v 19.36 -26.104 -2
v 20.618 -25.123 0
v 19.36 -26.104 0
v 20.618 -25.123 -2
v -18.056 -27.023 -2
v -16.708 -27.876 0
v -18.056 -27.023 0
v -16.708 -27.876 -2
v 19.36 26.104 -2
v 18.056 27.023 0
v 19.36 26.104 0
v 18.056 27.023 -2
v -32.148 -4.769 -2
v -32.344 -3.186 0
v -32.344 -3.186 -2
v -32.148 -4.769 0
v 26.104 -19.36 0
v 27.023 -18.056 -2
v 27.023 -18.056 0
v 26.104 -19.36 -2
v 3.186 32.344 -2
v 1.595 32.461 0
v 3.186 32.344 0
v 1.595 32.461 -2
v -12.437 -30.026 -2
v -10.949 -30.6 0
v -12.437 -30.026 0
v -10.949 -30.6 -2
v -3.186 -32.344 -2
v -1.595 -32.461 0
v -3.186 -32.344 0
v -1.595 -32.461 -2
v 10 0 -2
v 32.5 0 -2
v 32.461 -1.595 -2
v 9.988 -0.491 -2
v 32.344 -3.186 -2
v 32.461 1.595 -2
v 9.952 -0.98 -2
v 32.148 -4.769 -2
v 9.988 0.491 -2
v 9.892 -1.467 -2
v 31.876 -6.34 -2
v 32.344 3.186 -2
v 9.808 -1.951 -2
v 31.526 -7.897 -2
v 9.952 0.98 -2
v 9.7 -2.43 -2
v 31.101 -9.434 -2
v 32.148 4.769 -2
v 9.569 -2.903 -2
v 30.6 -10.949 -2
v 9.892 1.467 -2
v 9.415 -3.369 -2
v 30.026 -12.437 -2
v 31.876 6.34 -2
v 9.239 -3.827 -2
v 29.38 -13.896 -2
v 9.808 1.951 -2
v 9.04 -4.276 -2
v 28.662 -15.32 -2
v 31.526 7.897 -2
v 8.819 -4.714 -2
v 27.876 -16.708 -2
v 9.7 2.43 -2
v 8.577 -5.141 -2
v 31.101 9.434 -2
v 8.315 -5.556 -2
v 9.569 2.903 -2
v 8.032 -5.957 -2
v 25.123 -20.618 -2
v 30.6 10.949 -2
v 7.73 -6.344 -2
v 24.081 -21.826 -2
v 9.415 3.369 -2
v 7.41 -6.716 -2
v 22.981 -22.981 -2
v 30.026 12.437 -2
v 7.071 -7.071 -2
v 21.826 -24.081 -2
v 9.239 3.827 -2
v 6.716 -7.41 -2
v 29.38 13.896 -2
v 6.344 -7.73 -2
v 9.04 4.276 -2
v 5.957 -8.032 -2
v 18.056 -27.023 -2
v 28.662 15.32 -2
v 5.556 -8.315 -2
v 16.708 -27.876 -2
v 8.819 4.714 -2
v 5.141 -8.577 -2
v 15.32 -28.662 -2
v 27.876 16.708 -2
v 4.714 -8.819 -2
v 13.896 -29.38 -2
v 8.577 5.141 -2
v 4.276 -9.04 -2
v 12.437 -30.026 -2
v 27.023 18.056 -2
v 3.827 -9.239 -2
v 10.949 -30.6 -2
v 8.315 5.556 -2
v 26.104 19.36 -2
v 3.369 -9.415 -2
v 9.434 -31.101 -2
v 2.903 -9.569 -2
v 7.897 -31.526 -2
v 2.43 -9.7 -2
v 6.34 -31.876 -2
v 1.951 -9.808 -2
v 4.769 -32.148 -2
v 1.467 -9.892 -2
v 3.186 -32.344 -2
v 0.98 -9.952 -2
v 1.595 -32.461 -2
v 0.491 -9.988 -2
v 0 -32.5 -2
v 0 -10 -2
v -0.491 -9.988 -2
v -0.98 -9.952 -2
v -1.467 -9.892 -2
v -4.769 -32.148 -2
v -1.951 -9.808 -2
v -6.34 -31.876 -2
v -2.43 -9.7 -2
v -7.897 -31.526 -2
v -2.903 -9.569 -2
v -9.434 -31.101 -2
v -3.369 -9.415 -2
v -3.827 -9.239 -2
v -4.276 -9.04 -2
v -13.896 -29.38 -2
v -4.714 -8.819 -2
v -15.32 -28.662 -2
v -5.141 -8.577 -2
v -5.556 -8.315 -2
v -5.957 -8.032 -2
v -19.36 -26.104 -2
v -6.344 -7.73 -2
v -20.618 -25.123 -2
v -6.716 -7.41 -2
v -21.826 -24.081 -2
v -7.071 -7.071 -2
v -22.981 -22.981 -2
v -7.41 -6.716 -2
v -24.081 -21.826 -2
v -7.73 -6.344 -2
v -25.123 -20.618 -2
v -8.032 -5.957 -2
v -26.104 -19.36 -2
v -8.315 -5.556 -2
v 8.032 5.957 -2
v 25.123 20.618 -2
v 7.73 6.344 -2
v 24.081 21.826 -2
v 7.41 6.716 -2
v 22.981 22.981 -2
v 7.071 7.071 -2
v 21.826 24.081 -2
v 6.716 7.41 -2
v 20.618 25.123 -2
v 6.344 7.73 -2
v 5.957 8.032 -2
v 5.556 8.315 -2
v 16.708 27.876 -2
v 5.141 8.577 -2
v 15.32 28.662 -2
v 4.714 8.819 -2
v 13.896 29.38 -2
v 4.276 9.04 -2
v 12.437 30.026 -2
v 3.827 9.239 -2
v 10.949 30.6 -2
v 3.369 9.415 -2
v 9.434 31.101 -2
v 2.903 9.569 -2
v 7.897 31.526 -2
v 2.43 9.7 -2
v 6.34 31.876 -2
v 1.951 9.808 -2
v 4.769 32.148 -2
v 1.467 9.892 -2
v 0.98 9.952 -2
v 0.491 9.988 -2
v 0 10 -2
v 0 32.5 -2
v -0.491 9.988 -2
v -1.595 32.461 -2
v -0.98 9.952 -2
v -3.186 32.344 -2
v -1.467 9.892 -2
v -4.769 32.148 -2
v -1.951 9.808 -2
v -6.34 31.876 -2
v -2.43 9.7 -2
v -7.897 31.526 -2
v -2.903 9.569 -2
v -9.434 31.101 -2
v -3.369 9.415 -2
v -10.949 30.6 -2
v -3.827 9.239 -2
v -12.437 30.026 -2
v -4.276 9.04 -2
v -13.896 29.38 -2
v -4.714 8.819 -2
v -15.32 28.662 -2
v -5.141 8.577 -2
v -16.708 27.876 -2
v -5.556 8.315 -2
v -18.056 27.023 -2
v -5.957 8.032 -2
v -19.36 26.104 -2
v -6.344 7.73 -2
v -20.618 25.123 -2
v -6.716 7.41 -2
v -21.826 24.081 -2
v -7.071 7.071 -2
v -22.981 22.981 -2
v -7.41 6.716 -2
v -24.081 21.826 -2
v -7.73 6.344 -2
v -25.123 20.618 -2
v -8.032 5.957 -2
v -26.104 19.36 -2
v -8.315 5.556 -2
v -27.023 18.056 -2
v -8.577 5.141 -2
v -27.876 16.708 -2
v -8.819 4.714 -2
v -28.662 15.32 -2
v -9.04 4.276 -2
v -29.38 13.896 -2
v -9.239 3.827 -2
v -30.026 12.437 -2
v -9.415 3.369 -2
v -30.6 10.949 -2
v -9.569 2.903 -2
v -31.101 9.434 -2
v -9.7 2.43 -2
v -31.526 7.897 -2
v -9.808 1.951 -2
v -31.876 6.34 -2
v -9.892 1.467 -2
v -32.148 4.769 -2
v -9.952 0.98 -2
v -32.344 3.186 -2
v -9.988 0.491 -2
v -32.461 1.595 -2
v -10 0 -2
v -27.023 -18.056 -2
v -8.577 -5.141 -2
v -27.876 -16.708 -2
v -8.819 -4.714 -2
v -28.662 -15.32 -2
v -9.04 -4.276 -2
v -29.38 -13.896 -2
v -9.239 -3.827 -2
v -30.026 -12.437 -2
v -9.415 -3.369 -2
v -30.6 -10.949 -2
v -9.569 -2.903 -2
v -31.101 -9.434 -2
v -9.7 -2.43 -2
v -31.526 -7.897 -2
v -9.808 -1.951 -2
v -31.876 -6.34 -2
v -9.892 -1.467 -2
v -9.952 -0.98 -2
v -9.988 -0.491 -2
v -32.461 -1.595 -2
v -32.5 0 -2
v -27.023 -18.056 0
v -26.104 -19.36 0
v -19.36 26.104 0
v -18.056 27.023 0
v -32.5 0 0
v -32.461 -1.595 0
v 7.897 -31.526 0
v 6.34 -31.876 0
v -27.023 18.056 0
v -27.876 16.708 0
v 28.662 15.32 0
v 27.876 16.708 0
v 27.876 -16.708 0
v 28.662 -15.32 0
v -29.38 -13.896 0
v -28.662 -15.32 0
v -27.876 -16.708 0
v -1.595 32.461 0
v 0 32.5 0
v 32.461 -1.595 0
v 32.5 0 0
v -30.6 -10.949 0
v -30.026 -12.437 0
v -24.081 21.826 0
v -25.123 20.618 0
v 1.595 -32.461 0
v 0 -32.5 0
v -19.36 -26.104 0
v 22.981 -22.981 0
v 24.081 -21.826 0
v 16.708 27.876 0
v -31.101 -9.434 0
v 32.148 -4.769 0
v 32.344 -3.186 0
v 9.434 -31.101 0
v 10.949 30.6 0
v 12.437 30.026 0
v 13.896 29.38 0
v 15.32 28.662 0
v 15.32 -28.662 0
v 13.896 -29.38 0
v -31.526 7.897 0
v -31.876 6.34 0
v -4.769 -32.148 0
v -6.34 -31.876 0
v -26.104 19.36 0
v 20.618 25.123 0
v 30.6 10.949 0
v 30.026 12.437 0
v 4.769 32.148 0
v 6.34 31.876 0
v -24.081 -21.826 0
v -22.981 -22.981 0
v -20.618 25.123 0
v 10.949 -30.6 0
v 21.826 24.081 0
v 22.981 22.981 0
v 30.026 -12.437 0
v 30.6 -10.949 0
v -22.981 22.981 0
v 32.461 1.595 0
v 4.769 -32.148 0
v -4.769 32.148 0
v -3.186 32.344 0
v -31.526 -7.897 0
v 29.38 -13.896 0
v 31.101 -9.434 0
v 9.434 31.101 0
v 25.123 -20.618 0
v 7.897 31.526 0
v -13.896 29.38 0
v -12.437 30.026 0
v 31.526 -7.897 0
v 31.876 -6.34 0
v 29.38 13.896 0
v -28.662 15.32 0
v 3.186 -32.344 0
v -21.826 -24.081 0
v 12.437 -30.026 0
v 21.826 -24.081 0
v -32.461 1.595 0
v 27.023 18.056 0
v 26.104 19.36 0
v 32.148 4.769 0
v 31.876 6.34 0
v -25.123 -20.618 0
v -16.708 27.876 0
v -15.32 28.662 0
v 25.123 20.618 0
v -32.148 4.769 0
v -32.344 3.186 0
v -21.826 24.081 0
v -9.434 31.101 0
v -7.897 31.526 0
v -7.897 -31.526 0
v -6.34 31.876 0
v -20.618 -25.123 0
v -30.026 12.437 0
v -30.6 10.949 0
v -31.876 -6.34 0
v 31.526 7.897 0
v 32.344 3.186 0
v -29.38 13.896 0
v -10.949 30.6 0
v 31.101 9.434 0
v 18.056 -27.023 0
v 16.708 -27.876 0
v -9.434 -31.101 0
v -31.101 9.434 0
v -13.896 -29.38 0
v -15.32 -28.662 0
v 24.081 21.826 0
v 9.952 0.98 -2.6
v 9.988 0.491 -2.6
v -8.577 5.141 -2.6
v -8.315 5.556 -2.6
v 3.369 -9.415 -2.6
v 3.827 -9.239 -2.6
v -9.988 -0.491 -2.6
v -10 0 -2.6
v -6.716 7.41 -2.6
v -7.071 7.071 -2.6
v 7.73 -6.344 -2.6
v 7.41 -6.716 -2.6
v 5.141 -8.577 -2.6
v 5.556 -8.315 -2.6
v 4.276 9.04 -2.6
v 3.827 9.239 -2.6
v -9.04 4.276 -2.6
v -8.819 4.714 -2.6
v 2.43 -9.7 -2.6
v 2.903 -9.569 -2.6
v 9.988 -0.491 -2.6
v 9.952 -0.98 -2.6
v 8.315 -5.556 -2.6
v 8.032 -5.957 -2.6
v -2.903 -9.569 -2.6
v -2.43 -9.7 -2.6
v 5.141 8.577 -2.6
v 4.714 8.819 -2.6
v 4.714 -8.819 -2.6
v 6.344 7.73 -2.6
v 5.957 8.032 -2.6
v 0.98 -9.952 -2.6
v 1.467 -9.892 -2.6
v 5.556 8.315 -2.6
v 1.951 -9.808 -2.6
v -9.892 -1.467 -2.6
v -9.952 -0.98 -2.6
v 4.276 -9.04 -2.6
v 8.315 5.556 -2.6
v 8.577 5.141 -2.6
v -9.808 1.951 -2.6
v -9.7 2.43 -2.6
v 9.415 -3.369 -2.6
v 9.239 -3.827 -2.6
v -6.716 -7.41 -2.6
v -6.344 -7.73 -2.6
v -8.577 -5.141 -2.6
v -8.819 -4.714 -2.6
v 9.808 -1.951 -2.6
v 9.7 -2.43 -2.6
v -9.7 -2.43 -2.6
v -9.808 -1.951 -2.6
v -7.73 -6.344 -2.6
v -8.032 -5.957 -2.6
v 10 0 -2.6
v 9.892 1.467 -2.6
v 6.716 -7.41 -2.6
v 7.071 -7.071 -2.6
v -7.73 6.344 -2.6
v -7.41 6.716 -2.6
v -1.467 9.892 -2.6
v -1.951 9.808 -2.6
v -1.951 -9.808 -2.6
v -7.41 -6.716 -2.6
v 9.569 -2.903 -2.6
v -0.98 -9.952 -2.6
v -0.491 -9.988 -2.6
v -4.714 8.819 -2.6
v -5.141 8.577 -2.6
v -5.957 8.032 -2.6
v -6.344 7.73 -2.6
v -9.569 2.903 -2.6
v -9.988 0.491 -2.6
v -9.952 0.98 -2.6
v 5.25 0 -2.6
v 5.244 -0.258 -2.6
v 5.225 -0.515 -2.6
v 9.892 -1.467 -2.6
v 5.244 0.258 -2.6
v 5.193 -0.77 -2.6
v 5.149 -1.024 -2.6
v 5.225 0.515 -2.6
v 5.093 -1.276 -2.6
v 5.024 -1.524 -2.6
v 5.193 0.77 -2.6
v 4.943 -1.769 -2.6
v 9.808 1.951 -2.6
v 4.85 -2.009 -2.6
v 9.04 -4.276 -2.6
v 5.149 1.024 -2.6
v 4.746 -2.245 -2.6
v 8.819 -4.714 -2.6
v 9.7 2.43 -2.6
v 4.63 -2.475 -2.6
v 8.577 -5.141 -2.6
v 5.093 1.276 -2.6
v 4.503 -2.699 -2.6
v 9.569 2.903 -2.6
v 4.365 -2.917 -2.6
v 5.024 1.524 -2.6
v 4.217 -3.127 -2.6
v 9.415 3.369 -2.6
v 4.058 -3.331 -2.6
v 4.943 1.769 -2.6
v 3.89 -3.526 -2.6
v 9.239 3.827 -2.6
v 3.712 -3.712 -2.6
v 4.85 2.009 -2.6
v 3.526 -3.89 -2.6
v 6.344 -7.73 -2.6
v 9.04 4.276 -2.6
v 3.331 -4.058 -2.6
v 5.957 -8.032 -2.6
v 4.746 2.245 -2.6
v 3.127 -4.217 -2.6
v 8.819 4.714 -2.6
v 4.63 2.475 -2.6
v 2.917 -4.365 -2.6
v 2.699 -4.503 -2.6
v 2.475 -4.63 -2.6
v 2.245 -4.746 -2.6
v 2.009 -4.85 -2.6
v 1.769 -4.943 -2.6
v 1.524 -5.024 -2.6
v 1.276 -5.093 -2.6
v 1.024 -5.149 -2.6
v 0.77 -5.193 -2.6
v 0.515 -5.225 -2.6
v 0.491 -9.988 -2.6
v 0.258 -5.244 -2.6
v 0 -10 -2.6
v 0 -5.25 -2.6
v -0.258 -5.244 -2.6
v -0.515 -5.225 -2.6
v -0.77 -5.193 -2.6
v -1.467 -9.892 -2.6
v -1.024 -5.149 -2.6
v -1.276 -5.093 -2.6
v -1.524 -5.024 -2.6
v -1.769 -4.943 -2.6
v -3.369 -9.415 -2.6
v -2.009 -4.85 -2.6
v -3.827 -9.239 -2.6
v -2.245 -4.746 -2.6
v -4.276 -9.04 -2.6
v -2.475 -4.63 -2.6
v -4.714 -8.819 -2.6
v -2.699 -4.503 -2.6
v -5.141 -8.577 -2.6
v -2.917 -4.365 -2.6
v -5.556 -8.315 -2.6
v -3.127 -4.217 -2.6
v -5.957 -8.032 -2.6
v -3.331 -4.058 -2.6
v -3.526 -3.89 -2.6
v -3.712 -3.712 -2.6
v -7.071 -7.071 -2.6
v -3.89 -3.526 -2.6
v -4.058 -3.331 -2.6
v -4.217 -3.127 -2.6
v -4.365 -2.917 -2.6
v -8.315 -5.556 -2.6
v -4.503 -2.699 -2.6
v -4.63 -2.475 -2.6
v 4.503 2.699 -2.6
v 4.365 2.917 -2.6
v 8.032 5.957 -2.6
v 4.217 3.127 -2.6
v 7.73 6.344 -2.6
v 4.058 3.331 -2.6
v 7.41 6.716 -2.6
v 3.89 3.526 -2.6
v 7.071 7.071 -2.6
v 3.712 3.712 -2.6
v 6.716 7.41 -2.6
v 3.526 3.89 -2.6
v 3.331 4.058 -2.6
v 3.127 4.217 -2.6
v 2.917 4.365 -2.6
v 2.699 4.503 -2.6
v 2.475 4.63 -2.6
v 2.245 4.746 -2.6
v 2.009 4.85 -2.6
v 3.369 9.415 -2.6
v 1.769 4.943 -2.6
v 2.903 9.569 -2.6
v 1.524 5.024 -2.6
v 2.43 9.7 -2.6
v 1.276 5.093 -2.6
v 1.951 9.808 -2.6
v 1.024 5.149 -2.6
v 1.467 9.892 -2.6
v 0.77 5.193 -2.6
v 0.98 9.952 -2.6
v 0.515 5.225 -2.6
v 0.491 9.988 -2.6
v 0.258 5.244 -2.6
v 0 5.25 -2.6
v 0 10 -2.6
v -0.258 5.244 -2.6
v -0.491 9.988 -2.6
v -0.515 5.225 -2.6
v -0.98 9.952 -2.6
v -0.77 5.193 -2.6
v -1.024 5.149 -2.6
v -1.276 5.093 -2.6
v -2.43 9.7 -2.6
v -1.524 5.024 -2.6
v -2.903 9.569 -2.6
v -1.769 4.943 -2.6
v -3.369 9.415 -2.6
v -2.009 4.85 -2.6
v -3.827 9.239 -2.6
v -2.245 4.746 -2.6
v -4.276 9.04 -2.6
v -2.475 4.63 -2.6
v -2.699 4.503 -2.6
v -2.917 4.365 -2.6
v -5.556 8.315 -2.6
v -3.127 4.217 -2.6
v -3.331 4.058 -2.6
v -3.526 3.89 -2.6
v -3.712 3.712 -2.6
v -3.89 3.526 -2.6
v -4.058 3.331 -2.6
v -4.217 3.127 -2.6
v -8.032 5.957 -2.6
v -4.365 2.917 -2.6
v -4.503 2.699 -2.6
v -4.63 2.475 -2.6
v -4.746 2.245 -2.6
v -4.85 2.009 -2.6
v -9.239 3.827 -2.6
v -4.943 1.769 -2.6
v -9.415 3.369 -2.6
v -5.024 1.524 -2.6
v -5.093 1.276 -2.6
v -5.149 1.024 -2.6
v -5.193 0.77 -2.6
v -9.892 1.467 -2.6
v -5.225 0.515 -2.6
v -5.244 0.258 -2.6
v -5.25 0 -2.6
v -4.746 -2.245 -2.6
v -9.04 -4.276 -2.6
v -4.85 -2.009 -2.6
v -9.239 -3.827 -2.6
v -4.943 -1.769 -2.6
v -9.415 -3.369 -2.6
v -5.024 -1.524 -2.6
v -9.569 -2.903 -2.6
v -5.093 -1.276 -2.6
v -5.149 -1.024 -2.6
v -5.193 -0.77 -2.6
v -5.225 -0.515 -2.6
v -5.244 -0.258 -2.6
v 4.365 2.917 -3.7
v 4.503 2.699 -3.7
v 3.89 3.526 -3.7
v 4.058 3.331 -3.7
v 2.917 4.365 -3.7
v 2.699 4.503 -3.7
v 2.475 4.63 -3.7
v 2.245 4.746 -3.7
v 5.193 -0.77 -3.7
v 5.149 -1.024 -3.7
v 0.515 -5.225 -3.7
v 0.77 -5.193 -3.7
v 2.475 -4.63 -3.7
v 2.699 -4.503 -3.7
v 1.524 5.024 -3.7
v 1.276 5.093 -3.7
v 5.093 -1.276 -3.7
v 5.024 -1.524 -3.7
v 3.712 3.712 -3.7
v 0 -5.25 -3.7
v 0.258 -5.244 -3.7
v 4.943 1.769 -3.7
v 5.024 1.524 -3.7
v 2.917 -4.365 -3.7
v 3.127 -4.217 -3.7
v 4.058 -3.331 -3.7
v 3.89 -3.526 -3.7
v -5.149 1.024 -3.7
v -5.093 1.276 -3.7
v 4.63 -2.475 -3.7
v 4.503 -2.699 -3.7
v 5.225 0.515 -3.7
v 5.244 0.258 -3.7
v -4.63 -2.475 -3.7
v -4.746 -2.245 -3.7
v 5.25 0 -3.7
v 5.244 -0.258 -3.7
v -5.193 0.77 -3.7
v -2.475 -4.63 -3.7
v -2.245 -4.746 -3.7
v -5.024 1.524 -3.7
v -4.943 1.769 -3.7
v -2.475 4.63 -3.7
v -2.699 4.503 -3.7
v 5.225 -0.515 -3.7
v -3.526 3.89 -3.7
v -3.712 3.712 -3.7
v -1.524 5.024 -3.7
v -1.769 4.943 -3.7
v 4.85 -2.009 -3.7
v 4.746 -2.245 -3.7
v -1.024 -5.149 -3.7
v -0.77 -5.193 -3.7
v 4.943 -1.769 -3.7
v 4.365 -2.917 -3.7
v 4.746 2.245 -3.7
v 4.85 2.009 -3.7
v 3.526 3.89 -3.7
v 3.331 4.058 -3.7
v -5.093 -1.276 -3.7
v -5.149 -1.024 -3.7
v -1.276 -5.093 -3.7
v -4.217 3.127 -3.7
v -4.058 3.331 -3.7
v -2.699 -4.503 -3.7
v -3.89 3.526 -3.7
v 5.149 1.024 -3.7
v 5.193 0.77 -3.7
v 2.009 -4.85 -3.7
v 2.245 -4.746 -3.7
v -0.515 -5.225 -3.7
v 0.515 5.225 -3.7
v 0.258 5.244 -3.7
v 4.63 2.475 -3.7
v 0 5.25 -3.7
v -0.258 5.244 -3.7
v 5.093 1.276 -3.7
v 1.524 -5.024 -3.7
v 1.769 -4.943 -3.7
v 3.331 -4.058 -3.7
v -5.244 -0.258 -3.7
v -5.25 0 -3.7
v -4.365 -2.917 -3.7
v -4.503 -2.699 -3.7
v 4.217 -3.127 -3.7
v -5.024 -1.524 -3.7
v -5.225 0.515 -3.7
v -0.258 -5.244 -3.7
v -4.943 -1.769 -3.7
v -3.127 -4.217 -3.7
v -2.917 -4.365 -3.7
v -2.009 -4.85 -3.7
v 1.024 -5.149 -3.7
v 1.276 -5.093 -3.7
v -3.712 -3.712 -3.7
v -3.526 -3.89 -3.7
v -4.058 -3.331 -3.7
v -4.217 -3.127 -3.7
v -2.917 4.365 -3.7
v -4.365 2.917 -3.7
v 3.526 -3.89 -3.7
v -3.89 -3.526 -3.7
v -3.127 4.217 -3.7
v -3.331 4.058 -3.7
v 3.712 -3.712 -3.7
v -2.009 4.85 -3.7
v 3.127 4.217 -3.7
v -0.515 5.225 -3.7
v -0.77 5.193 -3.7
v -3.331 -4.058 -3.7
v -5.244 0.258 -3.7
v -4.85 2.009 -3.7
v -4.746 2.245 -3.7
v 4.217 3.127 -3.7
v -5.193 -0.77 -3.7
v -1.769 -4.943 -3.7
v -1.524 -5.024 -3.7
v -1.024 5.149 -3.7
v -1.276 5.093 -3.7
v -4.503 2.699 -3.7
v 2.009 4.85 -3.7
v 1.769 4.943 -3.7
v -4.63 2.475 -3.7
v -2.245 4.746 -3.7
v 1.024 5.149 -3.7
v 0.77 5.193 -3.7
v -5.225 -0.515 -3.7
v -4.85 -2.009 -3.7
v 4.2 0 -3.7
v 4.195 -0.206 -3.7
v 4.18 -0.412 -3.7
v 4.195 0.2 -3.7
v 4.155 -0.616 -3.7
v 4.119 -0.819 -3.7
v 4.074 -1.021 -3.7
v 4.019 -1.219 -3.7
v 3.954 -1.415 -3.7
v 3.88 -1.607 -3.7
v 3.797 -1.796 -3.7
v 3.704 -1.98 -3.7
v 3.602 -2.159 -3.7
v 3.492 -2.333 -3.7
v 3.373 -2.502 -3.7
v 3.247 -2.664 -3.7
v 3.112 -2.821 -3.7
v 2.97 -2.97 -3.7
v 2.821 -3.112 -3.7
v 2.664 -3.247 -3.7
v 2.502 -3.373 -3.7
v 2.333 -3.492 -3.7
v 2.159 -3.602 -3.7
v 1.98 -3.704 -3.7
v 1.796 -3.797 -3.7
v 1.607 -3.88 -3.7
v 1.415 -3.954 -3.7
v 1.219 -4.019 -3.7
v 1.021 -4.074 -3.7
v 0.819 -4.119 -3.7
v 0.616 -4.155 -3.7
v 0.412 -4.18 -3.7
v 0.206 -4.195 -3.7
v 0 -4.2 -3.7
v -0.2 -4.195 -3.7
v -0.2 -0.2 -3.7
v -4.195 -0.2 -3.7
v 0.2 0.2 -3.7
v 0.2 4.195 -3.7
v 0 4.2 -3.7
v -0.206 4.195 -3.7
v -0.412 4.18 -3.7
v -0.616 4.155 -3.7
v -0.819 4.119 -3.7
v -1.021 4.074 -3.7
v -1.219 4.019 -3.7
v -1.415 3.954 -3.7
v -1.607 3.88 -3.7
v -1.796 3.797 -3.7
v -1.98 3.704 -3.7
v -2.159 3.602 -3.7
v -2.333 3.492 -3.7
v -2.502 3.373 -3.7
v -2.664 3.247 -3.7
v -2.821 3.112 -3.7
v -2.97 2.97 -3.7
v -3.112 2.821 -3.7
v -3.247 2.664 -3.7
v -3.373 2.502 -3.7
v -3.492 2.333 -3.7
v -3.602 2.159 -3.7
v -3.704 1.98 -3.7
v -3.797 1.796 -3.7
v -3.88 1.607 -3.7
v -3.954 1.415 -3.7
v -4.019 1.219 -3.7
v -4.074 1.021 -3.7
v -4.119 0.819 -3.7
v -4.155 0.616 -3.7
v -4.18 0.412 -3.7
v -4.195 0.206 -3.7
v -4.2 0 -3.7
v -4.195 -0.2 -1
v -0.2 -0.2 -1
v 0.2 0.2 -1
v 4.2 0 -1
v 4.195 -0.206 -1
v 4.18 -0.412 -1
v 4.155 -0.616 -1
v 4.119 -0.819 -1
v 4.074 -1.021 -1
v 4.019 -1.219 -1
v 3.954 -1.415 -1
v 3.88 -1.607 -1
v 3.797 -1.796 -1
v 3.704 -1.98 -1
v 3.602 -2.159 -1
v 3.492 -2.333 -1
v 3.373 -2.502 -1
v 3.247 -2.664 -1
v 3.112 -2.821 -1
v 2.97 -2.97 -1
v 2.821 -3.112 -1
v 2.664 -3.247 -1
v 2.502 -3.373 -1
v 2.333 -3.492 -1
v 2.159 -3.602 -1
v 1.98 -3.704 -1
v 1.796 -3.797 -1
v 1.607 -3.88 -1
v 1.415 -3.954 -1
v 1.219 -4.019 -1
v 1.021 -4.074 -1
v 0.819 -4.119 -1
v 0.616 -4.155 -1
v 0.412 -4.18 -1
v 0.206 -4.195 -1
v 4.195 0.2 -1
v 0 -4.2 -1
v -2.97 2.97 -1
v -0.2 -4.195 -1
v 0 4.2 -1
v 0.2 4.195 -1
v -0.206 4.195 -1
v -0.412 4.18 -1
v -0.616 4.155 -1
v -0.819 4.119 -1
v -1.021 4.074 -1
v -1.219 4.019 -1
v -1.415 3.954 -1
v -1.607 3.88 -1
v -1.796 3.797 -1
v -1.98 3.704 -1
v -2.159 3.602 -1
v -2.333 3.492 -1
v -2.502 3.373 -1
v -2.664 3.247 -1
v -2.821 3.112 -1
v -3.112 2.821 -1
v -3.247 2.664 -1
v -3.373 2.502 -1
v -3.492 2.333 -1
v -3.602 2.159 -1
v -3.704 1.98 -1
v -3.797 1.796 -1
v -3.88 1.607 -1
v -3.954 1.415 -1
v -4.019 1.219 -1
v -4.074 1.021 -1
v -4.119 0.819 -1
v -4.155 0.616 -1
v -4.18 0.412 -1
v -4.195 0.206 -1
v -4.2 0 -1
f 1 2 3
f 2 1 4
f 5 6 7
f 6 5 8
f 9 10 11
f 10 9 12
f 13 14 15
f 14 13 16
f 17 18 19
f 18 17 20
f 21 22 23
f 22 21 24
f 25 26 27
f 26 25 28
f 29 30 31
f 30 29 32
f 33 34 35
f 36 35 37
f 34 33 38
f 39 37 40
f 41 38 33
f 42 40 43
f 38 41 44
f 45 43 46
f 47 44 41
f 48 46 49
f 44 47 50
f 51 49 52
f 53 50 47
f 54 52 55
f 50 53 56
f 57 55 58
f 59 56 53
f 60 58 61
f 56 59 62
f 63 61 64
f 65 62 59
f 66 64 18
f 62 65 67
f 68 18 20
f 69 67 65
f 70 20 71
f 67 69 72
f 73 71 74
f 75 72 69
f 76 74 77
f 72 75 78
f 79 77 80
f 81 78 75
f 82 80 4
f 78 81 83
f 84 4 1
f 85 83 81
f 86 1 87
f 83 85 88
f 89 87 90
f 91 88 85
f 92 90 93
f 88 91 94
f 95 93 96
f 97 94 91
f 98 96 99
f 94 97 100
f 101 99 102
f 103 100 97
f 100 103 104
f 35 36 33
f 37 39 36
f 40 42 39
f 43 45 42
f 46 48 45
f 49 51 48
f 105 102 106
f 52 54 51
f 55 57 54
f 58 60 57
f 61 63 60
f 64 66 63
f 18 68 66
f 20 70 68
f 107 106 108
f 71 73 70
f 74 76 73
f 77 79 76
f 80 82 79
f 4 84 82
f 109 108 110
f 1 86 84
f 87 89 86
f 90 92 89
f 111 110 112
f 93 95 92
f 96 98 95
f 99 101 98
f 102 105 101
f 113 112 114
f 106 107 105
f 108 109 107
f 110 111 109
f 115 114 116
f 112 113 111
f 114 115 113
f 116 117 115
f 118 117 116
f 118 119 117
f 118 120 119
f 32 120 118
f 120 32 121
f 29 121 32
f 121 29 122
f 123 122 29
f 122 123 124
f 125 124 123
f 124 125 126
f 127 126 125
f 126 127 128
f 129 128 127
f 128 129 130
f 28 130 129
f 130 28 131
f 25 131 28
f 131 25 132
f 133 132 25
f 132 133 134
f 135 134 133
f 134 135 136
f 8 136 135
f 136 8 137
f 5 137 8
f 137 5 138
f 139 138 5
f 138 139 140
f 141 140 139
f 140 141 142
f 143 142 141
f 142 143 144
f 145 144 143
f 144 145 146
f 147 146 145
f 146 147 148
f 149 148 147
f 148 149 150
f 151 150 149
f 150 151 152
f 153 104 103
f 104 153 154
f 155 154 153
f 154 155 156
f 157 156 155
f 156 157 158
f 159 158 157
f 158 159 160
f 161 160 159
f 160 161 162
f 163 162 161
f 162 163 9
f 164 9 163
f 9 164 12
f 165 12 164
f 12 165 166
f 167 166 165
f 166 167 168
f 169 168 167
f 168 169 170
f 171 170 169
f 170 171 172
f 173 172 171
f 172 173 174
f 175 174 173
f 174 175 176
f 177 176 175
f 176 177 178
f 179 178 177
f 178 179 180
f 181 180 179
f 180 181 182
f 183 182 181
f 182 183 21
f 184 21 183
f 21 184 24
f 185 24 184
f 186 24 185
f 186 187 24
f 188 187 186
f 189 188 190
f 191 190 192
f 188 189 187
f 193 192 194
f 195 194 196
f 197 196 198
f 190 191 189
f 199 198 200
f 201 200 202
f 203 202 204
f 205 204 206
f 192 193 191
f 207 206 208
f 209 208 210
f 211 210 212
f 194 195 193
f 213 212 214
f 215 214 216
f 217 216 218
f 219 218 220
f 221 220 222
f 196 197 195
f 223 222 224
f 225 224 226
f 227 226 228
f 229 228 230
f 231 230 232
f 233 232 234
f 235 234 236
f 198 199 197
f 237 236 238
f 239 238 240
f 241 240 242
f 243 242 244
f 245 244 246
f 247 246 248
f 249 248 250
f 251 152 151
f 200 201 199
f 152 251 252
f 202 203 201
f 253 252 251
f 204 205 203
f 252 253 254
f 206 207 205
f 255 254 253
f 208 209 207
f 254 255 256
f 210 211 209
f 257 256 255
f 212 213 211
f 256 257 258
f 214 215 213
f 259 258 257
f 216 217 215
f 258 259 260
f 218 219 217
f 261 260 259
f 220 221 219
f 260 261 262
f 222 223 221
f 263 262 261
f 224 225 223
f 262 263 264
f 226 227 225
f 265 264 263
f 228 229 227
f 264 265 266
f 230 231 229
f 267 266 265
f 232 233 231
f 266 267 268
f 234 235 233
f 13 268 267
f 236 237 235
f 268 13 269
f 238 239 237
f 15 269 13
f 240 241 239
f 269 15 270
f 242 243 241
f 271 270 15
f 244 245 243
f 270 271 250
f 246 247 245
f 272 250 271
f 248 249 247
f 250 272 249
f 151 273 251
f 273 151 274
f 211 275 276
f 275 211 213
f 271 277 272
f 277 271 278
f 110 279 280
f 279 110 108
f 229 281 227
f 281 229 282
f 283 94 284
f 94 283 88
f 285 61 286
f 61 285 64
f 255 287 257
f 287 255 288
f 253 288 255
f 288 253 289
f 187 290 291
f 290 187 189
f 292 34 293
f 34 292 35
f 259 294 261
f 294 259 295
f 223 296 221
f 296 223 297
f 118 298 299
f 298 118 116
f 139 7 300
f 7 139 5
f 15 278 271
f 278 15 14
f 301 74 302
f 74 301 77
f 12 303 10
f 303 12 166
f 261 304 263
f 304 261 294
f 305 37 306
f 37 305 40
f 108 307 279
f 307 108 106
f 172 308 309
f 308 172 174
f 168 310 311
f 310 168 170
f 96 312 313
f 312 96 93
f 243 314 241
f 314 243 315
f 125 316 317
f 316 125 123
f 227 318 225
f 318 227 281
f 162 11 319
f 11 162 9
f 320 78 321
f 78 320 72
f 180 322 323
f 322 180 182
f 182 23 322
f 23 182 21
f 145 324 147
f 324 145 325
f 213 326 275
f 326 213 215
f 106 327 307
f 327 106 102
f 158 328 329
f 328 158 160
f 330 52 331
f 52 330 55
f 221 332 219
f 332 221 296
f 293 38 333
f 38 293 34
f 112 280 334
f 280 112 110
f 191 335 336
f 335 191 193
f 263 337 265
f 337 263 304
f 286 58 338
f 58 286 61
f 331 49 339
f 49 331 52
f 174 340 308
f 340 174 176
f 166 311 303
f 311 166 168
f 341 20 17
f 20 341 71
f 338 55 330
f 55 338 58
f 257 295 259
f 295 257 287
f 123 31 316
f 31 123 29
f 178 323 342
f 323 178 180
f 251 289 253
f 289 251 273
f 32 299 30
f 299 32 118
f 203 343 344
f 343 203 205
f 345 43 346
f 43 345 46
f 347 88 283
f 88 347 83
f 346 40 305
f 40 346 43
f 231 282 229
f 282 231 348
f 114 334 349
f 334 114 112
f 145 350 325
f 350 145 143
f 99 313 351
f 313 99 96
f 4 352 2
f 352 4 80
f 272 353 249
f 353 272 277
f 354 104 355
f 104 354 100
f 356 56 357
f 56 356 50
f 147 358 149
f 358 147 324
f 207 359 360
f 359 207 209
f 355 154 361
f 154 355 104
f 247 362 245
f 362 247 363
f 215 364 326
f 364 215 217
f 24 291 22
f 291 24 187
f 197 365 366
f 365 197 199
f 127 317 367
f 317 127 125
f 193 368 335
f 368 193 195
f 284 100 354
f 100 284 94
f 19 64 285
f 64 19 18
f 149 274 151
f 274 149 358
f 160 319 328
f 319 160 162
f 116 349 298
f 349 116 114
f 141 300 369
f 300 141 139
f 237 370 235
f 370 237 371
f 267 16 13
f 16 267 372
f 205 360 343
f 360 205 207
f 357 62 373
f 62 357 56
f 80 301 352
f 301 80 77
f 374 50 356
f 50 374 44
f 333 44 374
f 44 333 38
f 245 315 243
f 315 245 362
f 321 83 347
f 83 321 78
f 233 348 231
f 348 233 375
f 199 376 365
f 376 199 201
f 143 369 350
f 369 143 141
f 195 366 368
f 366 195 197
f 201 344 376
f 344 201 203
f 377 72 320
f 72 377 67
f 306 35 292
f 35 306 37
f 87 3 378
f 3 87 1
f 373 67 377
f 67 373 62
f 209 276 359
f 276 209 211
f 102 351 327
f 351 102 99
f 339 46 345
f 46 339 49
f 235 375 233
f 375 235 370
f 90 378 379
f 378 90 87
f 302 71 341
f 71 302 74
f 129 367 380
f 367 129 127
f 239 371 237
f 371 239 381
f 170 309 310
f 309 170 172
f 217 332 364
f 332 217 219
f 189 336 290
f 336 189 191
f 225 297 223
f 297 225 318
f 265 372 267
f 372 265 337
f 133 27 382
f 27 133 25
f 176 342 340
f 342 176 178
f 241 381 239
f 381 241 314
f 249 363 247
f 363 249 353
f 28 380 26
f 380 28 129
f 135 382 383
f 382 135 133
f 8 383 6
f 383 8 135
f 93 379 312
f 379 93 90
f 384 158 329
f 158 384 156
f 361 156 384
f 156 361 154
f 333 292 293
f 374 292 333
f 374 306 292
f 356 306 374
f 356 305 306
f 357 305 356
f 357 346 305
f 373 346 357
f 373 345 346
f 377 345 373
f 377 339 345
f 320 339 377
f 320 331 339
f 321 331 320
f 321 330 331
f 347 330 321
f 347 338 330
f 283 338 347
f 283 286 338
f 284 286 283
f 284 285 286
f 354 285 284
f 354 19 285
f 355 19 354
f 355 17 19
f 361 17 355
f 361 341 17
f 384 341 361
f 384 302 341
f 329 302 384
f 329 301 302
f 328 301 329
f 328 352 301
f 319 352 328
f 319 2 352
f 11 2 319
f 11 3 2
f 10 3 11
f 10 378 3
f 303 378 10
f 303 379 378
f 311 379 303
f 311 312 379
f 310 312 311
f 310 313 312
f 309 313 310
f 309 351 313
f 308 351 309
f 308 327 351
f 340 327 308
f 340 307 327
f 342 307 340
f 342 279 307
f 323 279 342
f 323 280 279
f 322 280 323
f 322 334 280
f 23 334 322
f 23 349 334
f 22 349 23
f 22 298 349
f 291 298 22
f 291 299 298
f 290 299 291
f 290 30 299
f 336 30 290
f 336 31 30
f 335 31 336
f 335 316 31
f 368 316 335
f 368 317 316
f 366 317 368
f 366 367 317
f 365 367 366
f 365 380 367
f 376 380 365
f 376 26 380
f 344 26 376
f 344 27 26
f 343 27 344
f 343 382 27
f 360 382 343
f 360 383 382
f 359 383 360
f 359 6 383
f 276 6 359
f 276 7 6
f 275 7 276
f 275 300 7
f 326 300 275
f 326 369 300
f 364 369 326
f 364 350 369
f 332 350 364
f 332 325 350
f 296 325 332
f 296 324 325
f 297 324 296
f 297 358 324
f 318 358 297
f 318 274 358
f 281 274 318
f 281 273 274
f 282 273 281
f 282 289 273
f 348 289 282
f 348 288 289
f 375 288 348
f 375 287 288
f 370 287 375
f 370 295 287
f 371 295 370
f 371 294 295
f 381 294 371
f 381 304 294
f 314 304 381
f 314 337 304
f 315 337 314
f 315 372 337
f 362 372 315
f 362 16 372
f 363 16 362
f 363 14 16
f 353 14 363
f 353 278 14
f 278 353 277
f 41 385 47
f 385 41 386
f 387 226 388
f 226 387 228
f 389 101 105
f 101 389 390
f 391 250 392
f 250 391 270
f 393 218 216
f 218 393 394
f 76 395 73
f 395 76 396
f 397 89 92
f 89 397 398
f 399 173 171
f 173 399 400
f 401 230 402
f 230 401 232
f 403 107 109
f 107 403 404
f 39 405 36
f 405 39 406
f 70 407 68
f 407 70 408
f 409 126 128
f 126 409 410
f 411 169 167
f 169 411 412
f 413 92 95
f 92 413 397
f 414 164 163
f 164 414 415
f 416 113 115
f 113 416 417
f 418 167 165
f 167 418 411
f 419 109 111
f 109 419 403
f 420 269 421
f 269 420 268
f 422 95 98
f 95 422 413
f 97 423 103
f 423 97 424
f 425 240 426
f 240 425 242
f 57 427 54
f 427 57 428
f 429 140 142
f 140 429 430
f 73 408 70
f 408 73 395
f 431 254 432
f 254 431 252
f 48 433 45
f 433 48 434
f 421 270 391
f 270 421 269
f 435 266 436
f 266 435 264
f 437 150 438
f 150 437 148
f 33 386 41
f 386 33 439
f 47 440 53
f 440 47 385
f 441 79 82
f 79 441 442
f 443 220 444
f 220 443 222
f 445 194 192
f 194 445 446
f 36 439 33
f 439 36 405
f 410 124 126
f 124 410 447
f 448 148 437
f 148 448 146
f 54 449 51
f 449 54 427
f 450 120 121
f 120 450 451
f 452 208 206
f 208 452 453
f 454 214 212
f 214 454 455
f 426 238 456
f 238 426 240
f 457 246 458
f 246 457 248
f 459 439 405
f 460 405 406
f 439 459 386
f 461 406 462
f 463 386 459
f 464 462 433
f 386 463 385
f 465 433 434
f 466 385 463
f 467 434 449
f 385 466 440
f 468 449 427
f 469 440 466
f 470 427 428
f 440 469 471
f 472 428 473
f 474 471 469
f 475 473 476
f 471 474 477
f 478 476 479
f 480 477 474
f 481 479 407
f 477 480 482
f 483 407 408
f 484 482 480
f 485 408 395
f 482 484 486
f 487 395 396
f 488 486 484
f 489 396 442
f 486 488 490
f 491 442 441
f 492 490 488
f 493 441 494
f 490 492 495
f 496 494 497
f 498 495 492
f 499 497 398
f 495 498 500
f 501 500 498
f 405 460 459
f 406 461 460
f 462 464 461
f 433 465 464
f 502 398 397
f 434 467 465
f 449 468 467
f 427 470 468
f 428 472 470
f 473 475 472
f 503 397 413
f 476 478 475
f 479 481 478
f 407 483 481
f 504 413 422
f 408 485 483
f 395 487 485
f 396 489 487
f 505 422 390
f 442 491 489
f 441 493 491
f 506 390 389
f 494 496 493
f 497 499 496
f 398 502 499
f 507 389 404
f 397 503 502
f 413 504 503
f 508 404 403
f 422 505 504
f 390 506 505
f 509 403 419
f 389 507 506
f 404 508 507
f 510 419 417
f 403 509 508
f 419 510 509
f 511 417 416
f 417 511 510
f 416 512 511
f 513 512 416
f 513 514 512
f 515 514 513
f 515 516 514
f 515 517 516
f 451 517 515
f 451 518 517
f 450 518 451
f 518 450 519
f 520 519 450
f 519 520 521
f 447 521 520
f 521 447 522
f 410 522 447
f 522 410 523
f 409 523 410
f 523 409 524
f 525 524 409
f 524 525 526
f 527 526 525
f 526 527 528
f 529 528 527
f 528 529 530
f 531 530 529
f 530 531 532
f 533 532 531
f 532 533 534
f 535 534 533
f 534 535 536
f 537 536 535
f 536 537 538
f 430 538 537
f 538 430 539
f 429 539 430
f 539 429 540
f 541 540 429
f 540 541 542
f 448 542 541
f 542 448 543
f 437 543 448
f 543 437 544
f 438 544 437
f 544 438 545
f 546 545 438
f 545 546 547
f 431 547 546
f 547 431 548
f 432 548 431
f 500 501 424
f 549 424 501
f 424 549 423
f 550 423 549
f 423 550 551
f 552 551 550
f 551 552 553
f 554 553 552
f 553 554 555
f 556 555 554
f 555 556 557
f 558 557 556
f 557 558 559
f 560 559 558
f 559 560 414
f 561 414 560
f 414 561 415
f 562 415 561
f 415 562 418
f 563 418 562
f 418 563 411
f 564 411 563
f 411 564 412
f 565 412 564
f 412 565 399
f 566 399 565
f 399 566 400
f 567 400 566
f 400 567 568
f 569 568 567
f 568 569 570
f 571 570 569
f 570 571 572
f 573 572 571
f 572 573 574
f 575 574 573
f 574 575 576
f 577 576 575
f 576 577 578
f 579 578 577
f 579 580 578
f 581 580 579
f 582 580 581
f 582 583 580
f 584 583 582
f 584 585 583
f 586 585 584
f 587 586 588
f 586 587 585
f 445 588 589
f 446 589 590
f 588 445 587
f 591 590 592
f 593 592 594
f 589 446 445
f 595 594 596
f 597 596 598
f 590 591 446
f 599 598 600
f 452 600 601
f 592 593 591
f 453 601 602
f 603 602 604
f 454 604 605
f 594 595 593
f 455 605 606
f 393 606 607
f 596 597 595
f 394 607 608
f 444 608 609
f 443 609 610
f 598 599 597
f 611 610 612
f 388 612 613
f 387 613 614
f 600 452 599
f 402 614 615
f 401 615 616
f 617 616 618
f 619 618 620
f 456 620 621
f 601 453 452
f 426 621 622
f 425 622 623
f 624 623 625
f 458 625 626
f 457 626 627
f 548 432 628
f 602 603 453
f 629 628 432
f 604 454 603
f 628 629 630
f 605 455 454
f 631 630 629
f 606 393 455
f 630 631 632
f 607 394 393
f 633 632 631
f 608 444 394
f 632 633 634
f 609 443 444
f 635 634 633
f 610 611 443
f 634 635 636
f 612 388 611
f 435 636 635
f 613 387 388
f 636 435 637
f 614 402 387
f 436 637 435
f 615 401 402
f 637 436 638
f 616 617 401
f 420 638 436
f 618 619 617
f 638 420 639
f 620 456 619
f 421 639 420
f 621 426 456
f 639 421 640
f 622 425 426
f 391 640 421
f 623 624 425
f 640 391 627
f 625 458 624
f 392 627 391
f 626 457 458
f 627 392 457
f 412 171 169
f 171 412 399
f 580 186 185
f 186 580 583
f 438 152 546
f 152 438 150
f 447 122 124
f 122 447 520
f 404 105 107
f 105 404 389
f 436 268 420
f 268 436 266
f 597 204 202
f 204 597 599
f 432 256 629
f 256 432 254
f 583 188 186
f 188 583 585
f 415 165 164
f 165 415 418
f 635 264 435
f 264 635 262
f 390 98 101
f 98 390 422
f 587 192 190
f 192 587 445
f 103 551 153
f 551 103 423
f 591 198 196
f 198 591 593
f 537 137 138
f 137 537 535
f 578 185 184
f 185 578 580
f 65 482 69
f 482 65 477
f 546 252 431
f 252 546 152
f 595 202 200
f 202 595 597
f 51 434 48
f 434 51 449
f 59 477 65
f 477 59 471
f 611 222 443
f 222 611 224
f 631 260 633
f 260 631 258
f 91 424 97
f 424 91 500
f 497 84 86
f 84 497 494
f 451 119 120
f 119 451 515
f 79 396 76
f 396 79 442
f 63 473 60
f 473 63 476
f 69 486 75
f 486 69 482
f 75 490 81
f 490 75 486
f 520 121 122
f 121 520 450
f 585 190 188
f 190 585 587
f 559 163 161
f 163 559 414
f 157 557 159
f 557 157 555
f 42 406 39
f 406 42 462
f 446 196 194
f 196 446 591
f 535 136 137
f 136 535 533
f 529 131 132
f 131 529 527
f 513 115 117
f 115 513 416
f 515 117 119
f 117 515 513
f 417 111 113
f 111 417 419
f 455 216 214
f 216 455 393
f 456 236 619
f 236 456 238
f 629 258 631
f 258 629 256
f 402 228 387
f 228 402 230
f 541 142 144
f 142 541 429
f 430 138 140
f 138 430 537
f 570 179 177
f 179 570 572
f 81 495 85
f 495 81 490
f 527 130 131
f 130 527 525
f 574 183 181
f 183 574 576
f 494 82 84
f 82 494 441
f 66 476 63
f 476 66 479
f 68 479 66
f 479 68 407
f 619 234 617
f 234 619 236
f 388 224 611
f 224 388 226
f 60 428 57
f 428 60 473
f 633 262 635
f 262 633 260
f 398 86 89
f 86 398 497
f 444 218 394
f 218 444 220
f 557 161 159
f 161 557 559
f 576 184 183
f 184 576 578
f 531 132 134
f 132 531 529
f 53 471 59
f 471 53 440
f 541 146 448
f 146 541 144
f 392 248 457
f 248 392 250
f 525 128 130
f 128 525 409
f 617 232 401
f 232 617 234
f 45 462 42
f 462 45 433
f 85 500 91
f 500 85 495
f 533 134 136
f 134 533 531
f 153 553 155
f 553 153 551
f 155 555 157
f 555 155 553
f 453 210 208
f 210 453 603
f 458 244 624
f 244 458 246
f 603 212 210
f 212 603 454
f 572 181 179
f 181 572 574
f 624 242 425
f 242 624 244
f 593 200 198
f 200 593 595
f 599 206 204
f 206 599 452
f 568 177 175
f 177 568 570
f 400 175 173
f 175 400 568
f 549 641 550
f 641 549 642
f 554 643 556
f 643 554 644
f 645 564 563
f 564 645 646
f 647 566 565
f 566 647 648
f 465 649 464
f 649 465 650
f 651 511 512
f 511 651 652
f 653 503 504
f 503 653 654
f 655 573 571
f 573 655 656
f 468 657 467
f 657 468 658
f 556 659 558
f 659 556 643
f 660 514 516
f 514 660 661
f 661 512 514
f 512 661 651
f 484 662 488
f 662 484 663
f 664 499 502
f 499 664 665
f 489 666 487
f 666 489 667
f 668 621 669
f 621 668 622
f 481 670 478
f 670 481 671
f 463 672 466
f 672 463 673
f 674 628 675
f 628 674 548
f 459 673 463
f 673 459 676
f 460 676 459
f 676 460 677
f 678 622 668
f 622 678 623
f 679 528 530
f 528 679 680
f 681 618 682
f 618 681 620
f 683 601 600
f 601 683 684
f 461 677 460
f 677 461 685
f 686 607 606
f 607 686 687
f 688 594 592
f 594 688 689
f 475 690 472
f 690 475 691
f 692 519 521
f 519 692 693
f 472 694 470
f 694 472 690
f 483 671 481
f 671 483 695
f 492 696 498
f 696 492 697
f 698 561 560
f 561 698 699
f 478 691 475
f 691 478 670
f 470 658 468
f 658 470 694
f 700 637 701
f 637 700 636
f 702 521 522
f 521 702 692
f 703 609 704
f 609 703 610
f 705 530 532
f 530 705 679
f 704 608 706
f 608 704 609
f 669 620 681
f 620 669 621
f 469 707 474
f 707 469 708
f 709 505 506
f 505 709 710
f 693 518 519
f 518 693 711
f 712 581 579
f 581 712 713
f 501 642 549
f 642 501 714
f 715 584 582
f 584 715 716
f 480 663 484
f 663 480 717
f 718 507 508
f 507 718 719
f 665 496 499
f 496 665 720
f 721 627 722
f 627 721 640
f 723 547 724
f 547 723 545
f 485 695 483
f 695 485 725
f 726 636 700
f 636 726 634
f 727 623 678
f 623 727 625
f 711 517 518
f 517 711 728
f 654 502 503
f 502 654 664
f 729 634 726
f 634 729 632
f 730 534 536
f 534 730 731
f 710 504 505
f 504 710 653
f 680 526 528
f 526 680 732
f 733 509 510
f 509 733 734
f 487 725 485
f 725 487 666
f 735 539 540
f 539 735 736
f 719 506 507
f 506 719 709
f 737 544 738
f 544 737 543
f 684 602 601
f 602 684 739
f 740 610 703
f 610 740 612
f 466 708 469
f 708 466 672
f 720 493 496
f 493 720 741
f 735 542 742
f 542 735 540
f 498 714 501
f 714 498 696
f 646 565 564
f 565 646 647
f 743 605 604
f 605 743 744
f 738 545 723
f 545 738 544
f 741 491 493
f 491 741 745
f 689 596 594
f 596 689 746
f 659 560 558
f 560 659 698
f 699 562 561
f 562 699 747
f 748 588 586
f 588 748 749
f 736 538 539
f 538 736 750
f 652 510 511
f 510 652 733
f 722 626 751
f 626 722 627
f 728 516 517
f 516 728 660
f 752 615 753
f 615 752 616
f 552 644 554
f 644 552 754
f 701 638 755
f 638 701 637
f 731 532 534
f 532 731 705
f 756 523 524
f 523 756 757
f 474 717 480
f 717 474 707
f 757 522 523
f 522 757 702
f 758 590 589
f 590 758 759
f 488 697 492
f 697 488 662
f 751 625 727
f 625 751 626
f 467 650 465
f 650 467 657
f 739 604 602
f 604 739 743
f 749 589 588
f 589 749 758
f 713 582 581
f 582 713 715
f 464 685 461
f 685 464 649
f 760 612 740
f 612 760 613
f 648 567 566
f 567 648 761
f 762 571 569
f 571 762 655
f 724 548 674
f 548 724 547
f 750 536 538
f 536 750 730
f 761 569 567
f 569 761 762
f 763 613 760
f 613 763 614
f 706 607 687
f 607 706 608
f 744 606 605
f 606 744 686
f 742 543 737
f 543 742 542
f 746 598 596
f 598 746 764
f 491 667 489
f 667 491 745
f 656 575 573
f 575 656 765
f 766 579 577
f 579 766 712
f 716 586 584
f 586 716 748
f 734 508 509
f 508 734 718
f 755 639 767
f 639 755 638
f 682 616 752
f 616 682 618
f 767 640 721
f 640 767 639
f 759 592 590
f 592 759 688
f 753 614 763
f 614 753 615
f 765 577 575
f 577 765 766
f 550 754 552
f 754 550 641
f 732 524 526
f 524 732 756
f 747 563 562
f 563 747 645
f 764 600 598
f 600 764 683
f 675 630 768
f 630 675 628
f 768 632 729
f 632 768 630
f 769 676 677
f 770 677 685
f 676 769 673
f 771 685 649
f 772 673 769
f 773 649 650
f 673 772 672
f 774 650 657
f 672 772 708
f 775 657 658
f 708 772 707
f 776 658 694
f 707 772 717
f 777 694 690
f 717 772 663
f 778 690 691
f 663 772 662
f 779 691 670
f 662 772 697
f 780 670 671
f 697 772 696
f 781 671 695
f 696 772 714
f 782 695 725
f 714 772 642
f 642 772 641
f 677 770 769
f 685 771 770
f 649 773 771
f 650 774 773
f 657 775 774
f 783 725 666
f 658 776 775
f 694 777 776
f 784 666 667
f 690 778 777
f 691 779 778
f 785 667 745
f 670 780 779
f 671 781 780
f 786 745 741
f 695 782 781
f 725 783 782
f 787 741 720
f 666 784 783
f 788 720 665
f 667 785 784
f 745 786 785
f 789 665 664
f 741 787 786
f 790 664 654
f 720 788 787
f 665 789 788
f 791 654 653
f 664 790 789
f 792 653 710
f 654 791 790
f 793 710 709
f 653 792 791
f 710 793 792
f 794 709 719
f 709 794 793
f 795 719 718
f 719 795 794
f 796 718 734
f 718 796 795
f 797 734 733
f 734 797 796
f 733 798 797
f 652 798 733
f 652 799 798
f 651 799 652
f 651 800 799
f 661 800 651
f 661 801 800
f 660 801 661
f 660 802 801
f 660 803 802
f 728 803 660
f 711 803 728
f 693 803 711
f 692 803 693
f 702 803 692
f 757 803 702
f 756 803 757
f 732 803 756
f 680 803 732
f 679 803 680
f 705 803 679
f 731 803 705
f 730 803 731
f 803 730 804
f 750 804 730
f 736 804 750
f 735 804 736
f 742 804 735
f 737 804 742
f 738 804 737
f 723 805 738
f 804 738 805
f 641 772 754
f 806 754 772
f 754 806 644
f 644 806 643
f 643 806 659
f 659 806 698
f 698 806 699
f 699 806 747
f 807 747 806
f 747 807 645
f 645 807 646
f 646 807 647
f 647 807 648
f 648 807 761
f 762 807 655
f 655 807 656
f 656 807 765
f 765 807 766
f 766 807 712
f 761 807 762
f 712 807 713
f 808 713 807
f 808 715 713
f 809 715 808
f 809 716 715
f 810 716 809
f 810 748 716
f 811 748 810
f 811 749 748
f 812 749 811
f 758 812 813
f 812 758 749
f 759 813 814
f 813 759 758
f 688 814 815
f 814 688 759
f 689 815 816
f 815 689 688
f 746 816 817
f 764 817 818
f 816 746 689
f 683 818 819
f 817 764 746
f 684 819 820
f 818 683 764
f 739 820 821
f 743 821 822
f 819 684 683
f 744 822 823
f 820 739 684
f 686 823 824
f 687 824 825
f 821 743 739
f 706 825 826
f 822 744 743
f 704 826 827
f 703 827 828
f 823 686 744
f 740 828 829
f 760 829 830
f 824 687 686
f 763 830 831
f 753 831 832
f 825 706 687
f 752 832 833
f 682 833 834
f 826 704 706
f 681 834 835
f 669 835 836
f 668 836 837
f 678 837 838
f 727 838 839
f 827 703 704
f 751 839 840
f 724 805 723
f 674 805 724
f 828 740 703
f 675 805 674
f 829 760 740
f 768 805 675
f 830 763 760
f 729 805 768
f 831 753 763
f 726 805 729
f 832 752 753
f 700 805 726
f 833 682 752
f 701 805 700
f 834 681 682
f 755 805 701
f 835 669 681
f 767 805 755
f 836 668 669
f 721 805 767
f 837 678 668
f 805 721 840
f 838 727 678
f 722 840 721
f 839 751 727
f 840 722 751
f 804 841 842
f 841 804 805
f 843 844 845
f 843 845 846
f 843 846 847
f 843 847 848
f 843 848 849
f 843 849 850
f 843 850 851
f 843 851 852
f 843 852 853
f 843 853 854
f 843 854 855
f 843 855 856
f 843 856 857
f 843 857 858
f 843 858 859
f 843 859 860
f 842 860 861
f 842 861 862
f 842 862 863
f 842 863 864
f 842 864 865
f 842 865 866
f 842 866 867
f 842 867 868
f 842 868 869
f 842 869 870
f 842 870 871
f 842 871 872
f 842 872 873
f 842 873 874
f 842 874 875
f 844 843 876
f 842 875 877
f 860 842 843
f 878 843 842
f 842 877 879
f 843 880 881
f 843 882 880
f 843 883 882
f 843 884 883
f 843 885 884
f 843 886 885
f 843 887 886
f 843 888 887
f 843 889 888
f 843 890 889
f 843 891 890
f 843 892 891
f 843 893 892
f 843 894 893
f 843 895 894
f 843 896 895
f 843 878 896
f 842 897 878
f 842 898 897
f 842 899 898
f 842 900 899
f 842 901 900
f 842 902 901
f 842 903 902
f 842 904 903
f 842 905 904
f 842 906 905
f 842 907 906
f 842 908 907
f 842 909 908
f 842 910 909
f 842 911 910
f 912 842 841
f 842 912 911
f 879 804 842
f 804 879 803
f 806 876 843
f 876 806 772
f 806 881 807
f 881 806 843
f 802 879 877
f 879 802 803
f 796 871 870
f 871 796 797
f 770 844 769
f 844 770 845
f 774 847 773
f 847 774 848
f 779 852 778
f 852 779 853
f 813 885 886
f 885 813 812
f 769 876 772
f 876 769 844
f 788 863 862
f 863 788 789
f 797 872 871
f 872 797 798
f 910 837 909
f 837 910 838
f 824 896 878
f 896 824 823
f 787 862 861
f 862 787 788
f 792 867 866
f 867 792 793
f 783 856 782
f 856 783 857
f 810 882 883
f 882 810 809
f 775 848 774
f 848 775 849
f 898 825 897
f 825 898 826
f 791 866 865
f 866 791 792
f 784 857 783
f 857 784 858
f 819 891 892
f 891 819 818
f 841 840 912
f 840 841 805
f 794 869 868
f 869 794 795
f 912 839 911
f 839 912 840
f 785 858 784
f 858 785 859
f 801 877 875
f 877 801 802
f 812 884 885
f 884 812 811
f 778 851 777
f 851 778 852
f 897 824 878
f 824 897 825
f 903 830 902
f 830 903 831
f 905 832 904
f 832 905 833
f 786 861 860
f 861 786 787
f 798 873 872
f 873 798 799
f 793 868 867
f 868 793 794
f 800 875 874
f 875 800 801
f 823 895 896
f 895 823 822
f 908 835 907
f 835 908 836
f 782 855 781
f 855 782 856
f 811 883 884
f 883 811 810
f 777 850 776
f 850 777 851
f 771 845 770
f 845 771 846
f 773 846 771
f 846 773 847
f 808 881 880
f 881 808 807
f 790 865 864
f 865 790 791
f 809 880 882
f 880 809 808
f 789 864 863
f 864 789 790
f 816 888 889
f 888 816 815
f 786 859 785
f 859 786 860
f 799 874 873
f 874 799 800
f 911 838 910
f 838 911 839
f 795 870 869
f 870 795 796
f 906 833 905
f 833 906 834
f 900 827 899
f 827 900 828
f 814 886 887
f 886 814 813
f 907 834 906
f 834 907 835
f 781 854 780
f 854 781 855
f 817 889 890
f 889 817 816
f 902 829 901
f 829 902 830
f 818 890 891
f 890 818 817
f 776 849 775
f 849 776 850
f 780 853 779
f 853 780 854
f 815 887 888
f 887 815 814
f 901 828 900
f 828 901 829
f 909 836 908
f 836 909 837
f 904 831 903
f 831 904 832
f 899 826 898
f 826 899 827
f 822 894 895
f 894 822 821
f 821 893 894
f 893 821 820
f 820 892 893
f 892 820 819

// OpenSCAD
// file: centercap_params.scad
// Bearing parameters
bearing_outer_diam = 22;
bearing_inner_diam = 8;
bearing_height = 7;
bearing_tolerance= 0.1;

// Base parameters
base_height = 2; //4.4;
outer_diam = 65;

bearing_wall_width = 2.5;

inner_ring_height = 10;
inner_ring_diam = 56;
inner_ring_wall_width = 2;

clip_clearance = 2;
clip_length = 13;
clip_height = 12;
clip_width = 2;
clip_straight_height = 4.5;
clip_slant_height = 5;

// Swing parameters
arm_width = 13.5;
arm_clearance = 2;
arm_length = inner_ring_diam / 2 - inner_ring_wall_width - arm_clearance;
arm_height = 3; // 2;
echo(arm_length);

bearing_start_z_offset = 1.6;
bearing_z_start = arm_height + bearing_start_z_offset;
bearing_z_mid = bearing_z_start + bearing_height / 2;

nut_width = 8.08; // Measured corner to corner
nut_height = 3.2;
nut_hole_size = 4.2;
nut_tolerance = 0.2;
nut_loose_width = nut_width + nut_tolerance;
nut_clearance = 0.1; // 0.1
screw_head_height = 2 * 3.2;

swing_clearance = 1;
swing_height = bearing_height + arm_height + bearing_start_z_offset - swing_clearance - screw_head_height;//bearing_z_mid + nut_height / 2;

shaft_height = 12.25;
notch_size = 2;
notch_length = 3;

swing_inner_diam = arm_length - nut_loose_width - 2 * nut_clearance; // TODO change name or *2

// Top parameters
endcap_tolerance = 0.4;
endcap_height = 1;

bottom_height = 2; //4.4;

mid_diam = 20;
mid_height = 1.5;

top_diam = 10.5;
top_height = 1.1;

endcap_hole_height = bottom_height + mid_height + top_height - endcap_height;

// Curved VW parameters
logo_height = 1;
dome_height = 4;
// main file
include <centercap_params.scad>
$fn = $preview ? 16 : 128;

module CenterCapTopPlain() {
    // Add clearances to everything
    ec_bearing_diam = bearing_inner_diam + endcap_tolerance;
    ec_notch_size = notch_size - endcap_tolerance;
    ec_notch_length = notch_length - endcap_tolerance;

    rotate([180, 0, 0])
    difference(){
        union() {
            cylinder(h=bottom_height, d=outer_diam);
            
            translate([0, 0, top_height])
            cylinder(h=mid_height, d=mid_diam);

            translate([0, 0, top_height + mid_height])
            cylinder(h=top_height, d=top_diam);
        }
        
        translate([0, 0, endcap_height])
        difference() {
            cylinder(
            h=endcap_hole_height, 
            d=ec_bearing_diam);
            
            //translate([-ec_notch_size/2, -ec_bearing_diam / 2, 0])
            //cube([ec_notch_size, ec_notch_length, ec_notch_size], center=false);
            union() {
                for(i=[0:1]){
                rotate([0, 0, 90 + i * 180])
                translate([endcap_tolerance / 2, endcap_tolerance / 2, 0])
                cube(ec_bearing_diam / 2);
            }
    }
        }
    }
}

CenterCapTopPlain();
